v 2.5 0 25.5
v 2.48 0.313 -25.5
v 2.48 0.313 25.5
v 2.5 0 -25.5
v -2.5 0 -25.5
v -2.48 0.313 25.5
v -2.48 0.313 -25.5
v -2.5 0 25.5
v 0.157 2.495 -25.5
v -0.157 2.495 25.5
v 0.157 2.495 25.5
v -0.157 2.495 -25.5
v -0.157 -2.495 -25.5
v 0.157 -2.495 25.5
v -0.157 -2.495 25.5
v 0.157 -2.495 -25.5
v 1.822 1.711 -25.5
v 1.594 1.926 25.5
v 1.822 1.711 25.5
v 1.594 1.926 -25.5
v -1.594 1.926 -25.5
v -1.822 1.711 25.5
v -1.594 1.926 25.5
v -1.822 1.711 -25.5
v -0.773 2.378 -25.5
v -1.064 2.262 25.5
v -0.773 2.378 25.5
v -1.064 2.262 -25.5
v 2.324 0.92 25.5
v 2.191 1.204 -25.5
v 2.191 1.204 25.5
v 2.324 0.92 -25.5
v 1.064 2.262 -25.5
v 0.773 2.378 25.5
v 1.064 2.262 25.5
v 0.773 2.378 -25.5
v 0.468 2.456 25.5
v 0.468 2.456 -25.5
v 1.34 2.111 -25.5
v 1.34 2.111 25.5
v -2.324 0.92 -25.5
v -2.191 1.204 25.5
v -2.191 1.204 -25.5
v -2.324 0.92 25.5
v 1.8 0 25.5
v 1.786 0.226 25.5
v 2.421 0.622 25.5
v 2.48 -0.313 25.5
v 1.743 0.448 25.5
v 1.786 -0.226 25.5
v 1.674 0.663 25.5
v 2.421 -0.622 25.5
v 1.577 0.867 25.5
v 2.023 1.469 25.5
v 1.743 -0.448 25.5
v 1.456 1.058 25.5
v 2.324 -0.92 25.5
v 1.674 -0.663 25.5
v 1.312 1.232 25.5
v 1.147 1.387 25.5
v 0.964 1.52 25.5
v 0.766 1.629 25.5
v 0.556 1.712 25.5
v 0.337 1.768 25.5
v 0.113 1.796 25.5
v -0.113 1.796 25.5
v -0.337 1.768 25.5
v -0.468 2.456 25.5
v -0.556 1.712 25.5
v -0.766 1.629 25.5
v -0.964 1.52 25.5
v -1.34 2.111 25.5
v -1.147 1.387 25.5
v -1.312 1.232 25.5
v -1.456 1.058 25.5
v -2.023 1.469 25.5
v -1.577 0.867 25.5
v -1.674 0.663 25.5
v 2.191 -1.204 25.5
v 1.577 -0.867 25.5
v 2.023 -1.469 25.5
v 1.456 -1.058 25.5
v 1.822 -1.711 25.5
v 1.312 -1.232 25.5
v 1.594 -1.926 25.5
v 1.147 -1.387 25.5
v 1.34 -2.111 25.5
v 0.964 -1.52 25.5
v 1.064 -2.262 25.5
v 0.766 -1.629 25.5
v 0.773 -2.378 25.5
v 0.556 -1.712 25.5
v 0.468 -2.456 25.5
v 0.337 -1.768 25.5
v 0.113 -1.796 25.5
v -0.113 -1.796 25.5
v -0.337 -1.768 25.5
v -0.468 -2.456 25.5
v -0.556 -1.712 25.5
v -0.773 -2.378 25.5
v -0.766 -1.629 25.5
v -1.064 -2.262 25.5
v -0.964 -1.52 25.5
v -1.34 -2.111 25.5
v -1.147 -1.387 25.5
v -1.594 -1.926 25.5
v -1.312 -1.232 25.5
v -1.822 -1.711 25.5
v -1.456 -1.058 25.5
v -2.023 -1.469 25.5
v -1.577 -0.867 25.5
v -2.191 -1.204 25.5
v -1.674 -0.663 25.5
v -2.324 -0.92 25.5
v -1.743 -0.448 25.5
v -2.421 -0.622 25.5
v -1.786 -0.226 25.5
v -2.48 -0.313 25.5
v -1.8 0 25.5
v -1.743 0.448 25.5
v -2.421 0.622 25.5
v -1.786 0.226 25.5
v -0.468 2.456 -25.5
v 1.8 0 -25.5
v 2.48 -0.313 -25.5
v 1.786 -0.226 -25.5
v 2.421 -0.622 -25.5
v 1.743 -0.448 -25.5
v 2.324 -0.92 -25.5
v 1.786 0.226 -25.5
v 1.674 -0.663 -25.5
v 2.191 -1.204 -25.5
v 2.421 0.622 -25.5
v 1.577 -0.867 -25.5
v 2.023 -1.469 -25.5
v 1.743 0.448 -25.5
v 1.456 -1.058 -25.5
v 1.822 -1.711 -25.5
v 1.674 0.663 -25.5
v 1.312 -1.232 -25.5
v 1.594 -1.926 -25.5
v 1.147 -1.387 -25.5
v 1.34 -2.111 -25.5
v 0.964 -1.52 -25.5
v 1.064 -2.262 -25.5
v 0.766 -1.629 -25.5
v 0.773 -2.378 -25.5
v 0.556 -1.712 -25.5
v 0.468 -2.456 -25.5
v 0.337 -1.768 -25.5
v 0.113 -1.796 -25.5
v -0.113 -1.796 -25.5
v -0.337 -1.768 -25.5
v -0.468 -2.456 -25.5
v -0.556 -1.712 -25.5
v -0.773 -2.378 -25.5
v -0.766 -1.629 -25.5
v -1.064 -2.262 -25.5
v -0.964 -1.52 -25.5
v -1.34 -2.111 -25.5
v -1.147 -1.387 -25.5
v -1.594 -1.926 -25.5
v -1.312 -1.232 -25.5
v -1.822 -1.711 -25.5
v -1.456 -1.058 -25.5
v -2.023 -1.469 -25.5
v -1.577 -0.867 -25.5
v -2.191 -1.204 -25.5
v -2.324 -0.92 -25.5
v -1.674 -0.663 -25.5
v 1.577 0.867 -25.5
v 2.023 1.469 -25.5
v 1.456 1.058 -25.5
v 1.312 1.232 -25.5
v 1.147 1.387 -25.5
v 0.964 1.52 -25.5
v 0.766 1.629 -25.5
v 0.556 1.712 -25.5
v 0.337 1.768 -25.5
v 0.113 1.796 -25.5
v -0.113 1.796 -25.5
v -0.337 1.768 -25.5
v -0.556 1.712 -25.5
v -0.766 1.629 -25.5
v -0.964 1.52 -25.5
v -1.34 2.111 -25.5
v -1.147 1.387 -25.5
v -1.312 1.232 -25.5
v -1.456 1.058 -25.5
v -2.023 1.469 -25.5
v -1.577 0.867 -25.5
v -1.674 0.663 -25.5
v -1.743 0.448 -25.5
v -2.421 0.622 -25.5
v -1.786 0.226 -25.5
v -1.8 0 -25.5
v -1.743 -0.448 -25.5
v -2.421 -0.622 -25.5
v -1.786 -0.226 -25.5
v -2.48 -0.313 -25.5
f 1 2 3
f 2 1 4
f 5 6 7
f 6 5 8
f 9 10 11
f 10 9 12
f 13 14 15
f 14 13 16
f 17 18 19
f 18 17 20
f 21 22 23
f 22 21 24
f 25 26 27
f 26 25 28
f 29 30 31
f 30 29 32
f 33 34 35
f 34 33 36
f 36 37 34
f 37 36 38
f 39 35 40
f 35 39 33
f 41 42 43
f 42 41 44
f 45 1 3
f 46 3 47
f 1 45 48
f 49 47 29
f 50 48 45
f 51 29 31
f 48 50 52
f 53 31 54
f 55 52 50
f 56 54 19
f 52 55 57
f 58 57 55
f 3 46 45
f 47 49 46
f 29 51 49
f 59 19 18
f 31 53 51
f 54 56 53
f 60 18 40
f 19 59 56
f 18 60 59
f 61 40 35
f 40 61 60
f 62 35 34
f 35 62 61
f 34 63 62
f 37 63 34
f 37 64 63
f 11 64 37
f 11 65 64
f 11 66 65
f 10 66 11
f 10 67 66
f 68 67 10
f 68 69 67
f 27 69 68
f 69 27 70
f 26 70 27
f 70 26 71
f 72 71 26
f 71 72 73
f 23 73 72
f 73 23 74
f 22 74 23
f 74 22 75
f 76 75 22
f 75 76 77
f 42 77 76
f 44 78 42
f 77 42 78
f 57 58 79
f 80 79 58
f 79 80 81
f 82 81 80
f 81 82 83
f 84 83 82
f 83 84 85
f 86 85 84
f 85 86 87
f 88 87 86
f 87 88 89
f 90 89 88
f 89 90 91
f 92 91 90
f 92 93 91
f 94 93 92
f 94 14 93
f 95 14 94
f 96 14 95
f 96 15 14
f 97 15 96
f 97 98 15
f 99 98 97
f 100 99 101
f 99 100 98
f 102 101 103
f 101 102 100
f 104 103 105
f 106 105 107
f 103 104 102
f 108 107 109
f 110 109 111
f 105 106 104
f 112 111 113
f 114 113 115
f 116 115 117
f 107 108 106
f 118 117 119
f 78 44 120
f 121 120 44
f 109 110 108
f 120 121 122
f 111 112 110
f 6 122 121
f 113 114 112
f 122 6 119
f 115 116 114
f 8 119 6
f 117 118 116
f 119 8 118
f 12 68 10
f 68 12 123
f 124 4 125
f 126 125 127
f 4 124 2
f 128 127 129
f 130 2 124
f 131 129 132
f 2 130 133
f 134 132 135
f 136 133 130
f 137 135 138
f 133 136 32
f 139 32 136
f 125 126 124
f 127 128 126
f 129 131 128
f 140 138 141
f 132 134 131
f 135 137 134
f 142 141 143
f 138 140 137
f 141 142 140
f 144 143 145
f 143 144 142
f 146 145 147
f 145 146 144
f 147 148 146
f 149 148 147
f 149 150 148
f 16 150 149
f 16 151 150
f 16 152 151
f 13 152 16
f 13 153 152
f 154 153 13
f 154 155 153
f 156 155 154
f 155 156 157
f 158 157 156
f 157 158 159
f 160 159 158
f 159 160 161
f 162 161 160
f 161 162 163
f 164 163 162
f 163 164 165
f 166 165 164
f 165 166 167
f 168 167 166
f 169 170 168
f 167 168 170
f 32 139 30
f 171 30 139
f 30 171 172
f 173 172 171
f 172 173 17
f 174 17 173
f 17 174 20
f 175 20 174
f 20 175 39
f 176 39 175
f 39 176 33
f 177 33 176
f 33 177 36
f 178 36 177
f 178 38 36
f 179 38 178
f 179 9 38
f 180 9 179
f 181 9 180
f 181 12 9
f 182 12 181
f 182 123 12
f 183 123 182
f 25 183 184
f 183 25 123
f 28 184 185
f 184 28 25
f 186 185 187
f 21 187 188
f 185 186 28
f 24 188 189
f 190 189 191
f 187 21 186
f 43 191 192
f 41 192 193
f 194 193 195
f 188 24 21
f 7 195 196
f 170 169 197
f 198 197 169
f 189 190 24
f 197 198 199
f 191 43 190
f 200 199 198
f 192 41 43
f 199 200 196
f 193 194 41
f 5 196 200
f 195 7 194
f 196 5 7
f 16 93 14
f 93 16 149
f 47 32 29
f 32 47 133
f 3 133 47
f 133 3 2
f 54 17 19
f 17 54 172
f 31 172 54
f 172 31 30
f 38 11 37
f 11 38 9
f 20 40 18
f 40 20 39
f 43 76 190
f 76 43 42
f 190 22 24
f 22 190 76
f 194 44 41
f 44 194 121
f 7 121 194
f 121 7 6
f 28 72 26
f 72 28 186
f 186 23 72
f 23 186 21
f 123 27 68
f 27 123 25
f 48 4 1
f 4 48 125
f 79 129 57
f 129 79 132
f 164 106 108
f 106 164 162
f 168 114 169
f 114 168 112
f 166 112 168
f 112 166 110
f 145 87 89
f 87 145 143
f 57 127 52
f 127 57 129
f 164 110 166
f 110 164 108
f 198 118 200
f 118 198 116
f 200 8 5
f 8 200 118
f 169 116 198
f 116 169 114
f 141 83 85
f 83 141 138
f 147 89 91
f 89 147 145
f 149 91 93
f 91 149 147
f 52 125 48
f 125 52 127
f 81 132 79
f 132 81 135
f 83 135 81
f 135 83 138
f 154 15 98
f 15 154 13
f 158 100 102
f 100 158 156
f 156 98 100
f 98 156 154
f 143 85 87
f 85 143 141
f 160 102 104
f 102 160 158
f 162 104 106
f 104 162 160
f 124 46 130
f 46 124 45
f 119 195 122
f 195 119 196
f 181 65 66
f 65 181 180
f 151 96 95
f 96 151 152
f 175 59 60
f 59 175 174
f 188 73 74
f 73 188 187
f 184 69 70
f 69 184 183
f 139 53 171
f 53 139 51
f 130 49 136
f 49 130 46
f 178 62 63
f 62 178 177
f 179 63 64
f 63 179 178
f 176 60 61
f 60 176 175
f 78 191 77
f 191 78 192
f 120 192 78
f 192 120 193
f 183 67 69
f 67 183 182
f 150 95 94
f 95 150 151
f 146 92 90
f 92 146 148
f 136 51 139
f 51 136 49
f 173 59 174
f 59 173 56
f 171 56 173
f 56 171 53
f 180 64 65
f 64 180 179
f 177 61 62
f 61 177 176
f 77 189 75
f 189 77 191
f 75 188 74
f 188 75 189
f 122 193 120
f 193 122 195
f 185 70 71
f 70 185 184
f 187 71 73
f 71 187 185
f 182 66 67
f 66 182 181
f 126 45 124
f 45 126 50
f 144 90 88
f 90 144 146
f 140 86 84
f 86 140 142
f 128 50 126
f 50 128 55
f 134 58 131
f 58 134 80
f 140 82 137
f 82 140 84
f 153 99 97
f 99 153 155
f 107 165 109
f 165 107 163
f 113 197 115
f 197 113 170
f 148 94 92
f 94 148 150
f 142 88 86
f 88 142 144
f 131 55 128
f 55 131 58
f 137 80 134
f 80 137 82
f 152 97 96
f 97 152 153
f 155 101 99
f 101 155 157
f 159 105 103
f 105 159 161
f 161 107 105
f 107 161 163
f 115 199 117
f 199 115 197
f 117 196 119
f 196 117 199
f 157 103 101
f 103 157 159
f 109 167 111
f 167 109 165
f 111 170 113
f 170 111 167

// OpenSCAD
$fn = 50;


difference() {
	union() {
		translate(v = [0, 0, -25.5000000000]) {
			cylinder(h = 51, r = 2.5000000000);
		}
	}
	union() {
		#translate(v = [0, 0, -100.0000000000]) {
			cylinder(h = 200, r = 1.8000000000);
		}
	}
}
